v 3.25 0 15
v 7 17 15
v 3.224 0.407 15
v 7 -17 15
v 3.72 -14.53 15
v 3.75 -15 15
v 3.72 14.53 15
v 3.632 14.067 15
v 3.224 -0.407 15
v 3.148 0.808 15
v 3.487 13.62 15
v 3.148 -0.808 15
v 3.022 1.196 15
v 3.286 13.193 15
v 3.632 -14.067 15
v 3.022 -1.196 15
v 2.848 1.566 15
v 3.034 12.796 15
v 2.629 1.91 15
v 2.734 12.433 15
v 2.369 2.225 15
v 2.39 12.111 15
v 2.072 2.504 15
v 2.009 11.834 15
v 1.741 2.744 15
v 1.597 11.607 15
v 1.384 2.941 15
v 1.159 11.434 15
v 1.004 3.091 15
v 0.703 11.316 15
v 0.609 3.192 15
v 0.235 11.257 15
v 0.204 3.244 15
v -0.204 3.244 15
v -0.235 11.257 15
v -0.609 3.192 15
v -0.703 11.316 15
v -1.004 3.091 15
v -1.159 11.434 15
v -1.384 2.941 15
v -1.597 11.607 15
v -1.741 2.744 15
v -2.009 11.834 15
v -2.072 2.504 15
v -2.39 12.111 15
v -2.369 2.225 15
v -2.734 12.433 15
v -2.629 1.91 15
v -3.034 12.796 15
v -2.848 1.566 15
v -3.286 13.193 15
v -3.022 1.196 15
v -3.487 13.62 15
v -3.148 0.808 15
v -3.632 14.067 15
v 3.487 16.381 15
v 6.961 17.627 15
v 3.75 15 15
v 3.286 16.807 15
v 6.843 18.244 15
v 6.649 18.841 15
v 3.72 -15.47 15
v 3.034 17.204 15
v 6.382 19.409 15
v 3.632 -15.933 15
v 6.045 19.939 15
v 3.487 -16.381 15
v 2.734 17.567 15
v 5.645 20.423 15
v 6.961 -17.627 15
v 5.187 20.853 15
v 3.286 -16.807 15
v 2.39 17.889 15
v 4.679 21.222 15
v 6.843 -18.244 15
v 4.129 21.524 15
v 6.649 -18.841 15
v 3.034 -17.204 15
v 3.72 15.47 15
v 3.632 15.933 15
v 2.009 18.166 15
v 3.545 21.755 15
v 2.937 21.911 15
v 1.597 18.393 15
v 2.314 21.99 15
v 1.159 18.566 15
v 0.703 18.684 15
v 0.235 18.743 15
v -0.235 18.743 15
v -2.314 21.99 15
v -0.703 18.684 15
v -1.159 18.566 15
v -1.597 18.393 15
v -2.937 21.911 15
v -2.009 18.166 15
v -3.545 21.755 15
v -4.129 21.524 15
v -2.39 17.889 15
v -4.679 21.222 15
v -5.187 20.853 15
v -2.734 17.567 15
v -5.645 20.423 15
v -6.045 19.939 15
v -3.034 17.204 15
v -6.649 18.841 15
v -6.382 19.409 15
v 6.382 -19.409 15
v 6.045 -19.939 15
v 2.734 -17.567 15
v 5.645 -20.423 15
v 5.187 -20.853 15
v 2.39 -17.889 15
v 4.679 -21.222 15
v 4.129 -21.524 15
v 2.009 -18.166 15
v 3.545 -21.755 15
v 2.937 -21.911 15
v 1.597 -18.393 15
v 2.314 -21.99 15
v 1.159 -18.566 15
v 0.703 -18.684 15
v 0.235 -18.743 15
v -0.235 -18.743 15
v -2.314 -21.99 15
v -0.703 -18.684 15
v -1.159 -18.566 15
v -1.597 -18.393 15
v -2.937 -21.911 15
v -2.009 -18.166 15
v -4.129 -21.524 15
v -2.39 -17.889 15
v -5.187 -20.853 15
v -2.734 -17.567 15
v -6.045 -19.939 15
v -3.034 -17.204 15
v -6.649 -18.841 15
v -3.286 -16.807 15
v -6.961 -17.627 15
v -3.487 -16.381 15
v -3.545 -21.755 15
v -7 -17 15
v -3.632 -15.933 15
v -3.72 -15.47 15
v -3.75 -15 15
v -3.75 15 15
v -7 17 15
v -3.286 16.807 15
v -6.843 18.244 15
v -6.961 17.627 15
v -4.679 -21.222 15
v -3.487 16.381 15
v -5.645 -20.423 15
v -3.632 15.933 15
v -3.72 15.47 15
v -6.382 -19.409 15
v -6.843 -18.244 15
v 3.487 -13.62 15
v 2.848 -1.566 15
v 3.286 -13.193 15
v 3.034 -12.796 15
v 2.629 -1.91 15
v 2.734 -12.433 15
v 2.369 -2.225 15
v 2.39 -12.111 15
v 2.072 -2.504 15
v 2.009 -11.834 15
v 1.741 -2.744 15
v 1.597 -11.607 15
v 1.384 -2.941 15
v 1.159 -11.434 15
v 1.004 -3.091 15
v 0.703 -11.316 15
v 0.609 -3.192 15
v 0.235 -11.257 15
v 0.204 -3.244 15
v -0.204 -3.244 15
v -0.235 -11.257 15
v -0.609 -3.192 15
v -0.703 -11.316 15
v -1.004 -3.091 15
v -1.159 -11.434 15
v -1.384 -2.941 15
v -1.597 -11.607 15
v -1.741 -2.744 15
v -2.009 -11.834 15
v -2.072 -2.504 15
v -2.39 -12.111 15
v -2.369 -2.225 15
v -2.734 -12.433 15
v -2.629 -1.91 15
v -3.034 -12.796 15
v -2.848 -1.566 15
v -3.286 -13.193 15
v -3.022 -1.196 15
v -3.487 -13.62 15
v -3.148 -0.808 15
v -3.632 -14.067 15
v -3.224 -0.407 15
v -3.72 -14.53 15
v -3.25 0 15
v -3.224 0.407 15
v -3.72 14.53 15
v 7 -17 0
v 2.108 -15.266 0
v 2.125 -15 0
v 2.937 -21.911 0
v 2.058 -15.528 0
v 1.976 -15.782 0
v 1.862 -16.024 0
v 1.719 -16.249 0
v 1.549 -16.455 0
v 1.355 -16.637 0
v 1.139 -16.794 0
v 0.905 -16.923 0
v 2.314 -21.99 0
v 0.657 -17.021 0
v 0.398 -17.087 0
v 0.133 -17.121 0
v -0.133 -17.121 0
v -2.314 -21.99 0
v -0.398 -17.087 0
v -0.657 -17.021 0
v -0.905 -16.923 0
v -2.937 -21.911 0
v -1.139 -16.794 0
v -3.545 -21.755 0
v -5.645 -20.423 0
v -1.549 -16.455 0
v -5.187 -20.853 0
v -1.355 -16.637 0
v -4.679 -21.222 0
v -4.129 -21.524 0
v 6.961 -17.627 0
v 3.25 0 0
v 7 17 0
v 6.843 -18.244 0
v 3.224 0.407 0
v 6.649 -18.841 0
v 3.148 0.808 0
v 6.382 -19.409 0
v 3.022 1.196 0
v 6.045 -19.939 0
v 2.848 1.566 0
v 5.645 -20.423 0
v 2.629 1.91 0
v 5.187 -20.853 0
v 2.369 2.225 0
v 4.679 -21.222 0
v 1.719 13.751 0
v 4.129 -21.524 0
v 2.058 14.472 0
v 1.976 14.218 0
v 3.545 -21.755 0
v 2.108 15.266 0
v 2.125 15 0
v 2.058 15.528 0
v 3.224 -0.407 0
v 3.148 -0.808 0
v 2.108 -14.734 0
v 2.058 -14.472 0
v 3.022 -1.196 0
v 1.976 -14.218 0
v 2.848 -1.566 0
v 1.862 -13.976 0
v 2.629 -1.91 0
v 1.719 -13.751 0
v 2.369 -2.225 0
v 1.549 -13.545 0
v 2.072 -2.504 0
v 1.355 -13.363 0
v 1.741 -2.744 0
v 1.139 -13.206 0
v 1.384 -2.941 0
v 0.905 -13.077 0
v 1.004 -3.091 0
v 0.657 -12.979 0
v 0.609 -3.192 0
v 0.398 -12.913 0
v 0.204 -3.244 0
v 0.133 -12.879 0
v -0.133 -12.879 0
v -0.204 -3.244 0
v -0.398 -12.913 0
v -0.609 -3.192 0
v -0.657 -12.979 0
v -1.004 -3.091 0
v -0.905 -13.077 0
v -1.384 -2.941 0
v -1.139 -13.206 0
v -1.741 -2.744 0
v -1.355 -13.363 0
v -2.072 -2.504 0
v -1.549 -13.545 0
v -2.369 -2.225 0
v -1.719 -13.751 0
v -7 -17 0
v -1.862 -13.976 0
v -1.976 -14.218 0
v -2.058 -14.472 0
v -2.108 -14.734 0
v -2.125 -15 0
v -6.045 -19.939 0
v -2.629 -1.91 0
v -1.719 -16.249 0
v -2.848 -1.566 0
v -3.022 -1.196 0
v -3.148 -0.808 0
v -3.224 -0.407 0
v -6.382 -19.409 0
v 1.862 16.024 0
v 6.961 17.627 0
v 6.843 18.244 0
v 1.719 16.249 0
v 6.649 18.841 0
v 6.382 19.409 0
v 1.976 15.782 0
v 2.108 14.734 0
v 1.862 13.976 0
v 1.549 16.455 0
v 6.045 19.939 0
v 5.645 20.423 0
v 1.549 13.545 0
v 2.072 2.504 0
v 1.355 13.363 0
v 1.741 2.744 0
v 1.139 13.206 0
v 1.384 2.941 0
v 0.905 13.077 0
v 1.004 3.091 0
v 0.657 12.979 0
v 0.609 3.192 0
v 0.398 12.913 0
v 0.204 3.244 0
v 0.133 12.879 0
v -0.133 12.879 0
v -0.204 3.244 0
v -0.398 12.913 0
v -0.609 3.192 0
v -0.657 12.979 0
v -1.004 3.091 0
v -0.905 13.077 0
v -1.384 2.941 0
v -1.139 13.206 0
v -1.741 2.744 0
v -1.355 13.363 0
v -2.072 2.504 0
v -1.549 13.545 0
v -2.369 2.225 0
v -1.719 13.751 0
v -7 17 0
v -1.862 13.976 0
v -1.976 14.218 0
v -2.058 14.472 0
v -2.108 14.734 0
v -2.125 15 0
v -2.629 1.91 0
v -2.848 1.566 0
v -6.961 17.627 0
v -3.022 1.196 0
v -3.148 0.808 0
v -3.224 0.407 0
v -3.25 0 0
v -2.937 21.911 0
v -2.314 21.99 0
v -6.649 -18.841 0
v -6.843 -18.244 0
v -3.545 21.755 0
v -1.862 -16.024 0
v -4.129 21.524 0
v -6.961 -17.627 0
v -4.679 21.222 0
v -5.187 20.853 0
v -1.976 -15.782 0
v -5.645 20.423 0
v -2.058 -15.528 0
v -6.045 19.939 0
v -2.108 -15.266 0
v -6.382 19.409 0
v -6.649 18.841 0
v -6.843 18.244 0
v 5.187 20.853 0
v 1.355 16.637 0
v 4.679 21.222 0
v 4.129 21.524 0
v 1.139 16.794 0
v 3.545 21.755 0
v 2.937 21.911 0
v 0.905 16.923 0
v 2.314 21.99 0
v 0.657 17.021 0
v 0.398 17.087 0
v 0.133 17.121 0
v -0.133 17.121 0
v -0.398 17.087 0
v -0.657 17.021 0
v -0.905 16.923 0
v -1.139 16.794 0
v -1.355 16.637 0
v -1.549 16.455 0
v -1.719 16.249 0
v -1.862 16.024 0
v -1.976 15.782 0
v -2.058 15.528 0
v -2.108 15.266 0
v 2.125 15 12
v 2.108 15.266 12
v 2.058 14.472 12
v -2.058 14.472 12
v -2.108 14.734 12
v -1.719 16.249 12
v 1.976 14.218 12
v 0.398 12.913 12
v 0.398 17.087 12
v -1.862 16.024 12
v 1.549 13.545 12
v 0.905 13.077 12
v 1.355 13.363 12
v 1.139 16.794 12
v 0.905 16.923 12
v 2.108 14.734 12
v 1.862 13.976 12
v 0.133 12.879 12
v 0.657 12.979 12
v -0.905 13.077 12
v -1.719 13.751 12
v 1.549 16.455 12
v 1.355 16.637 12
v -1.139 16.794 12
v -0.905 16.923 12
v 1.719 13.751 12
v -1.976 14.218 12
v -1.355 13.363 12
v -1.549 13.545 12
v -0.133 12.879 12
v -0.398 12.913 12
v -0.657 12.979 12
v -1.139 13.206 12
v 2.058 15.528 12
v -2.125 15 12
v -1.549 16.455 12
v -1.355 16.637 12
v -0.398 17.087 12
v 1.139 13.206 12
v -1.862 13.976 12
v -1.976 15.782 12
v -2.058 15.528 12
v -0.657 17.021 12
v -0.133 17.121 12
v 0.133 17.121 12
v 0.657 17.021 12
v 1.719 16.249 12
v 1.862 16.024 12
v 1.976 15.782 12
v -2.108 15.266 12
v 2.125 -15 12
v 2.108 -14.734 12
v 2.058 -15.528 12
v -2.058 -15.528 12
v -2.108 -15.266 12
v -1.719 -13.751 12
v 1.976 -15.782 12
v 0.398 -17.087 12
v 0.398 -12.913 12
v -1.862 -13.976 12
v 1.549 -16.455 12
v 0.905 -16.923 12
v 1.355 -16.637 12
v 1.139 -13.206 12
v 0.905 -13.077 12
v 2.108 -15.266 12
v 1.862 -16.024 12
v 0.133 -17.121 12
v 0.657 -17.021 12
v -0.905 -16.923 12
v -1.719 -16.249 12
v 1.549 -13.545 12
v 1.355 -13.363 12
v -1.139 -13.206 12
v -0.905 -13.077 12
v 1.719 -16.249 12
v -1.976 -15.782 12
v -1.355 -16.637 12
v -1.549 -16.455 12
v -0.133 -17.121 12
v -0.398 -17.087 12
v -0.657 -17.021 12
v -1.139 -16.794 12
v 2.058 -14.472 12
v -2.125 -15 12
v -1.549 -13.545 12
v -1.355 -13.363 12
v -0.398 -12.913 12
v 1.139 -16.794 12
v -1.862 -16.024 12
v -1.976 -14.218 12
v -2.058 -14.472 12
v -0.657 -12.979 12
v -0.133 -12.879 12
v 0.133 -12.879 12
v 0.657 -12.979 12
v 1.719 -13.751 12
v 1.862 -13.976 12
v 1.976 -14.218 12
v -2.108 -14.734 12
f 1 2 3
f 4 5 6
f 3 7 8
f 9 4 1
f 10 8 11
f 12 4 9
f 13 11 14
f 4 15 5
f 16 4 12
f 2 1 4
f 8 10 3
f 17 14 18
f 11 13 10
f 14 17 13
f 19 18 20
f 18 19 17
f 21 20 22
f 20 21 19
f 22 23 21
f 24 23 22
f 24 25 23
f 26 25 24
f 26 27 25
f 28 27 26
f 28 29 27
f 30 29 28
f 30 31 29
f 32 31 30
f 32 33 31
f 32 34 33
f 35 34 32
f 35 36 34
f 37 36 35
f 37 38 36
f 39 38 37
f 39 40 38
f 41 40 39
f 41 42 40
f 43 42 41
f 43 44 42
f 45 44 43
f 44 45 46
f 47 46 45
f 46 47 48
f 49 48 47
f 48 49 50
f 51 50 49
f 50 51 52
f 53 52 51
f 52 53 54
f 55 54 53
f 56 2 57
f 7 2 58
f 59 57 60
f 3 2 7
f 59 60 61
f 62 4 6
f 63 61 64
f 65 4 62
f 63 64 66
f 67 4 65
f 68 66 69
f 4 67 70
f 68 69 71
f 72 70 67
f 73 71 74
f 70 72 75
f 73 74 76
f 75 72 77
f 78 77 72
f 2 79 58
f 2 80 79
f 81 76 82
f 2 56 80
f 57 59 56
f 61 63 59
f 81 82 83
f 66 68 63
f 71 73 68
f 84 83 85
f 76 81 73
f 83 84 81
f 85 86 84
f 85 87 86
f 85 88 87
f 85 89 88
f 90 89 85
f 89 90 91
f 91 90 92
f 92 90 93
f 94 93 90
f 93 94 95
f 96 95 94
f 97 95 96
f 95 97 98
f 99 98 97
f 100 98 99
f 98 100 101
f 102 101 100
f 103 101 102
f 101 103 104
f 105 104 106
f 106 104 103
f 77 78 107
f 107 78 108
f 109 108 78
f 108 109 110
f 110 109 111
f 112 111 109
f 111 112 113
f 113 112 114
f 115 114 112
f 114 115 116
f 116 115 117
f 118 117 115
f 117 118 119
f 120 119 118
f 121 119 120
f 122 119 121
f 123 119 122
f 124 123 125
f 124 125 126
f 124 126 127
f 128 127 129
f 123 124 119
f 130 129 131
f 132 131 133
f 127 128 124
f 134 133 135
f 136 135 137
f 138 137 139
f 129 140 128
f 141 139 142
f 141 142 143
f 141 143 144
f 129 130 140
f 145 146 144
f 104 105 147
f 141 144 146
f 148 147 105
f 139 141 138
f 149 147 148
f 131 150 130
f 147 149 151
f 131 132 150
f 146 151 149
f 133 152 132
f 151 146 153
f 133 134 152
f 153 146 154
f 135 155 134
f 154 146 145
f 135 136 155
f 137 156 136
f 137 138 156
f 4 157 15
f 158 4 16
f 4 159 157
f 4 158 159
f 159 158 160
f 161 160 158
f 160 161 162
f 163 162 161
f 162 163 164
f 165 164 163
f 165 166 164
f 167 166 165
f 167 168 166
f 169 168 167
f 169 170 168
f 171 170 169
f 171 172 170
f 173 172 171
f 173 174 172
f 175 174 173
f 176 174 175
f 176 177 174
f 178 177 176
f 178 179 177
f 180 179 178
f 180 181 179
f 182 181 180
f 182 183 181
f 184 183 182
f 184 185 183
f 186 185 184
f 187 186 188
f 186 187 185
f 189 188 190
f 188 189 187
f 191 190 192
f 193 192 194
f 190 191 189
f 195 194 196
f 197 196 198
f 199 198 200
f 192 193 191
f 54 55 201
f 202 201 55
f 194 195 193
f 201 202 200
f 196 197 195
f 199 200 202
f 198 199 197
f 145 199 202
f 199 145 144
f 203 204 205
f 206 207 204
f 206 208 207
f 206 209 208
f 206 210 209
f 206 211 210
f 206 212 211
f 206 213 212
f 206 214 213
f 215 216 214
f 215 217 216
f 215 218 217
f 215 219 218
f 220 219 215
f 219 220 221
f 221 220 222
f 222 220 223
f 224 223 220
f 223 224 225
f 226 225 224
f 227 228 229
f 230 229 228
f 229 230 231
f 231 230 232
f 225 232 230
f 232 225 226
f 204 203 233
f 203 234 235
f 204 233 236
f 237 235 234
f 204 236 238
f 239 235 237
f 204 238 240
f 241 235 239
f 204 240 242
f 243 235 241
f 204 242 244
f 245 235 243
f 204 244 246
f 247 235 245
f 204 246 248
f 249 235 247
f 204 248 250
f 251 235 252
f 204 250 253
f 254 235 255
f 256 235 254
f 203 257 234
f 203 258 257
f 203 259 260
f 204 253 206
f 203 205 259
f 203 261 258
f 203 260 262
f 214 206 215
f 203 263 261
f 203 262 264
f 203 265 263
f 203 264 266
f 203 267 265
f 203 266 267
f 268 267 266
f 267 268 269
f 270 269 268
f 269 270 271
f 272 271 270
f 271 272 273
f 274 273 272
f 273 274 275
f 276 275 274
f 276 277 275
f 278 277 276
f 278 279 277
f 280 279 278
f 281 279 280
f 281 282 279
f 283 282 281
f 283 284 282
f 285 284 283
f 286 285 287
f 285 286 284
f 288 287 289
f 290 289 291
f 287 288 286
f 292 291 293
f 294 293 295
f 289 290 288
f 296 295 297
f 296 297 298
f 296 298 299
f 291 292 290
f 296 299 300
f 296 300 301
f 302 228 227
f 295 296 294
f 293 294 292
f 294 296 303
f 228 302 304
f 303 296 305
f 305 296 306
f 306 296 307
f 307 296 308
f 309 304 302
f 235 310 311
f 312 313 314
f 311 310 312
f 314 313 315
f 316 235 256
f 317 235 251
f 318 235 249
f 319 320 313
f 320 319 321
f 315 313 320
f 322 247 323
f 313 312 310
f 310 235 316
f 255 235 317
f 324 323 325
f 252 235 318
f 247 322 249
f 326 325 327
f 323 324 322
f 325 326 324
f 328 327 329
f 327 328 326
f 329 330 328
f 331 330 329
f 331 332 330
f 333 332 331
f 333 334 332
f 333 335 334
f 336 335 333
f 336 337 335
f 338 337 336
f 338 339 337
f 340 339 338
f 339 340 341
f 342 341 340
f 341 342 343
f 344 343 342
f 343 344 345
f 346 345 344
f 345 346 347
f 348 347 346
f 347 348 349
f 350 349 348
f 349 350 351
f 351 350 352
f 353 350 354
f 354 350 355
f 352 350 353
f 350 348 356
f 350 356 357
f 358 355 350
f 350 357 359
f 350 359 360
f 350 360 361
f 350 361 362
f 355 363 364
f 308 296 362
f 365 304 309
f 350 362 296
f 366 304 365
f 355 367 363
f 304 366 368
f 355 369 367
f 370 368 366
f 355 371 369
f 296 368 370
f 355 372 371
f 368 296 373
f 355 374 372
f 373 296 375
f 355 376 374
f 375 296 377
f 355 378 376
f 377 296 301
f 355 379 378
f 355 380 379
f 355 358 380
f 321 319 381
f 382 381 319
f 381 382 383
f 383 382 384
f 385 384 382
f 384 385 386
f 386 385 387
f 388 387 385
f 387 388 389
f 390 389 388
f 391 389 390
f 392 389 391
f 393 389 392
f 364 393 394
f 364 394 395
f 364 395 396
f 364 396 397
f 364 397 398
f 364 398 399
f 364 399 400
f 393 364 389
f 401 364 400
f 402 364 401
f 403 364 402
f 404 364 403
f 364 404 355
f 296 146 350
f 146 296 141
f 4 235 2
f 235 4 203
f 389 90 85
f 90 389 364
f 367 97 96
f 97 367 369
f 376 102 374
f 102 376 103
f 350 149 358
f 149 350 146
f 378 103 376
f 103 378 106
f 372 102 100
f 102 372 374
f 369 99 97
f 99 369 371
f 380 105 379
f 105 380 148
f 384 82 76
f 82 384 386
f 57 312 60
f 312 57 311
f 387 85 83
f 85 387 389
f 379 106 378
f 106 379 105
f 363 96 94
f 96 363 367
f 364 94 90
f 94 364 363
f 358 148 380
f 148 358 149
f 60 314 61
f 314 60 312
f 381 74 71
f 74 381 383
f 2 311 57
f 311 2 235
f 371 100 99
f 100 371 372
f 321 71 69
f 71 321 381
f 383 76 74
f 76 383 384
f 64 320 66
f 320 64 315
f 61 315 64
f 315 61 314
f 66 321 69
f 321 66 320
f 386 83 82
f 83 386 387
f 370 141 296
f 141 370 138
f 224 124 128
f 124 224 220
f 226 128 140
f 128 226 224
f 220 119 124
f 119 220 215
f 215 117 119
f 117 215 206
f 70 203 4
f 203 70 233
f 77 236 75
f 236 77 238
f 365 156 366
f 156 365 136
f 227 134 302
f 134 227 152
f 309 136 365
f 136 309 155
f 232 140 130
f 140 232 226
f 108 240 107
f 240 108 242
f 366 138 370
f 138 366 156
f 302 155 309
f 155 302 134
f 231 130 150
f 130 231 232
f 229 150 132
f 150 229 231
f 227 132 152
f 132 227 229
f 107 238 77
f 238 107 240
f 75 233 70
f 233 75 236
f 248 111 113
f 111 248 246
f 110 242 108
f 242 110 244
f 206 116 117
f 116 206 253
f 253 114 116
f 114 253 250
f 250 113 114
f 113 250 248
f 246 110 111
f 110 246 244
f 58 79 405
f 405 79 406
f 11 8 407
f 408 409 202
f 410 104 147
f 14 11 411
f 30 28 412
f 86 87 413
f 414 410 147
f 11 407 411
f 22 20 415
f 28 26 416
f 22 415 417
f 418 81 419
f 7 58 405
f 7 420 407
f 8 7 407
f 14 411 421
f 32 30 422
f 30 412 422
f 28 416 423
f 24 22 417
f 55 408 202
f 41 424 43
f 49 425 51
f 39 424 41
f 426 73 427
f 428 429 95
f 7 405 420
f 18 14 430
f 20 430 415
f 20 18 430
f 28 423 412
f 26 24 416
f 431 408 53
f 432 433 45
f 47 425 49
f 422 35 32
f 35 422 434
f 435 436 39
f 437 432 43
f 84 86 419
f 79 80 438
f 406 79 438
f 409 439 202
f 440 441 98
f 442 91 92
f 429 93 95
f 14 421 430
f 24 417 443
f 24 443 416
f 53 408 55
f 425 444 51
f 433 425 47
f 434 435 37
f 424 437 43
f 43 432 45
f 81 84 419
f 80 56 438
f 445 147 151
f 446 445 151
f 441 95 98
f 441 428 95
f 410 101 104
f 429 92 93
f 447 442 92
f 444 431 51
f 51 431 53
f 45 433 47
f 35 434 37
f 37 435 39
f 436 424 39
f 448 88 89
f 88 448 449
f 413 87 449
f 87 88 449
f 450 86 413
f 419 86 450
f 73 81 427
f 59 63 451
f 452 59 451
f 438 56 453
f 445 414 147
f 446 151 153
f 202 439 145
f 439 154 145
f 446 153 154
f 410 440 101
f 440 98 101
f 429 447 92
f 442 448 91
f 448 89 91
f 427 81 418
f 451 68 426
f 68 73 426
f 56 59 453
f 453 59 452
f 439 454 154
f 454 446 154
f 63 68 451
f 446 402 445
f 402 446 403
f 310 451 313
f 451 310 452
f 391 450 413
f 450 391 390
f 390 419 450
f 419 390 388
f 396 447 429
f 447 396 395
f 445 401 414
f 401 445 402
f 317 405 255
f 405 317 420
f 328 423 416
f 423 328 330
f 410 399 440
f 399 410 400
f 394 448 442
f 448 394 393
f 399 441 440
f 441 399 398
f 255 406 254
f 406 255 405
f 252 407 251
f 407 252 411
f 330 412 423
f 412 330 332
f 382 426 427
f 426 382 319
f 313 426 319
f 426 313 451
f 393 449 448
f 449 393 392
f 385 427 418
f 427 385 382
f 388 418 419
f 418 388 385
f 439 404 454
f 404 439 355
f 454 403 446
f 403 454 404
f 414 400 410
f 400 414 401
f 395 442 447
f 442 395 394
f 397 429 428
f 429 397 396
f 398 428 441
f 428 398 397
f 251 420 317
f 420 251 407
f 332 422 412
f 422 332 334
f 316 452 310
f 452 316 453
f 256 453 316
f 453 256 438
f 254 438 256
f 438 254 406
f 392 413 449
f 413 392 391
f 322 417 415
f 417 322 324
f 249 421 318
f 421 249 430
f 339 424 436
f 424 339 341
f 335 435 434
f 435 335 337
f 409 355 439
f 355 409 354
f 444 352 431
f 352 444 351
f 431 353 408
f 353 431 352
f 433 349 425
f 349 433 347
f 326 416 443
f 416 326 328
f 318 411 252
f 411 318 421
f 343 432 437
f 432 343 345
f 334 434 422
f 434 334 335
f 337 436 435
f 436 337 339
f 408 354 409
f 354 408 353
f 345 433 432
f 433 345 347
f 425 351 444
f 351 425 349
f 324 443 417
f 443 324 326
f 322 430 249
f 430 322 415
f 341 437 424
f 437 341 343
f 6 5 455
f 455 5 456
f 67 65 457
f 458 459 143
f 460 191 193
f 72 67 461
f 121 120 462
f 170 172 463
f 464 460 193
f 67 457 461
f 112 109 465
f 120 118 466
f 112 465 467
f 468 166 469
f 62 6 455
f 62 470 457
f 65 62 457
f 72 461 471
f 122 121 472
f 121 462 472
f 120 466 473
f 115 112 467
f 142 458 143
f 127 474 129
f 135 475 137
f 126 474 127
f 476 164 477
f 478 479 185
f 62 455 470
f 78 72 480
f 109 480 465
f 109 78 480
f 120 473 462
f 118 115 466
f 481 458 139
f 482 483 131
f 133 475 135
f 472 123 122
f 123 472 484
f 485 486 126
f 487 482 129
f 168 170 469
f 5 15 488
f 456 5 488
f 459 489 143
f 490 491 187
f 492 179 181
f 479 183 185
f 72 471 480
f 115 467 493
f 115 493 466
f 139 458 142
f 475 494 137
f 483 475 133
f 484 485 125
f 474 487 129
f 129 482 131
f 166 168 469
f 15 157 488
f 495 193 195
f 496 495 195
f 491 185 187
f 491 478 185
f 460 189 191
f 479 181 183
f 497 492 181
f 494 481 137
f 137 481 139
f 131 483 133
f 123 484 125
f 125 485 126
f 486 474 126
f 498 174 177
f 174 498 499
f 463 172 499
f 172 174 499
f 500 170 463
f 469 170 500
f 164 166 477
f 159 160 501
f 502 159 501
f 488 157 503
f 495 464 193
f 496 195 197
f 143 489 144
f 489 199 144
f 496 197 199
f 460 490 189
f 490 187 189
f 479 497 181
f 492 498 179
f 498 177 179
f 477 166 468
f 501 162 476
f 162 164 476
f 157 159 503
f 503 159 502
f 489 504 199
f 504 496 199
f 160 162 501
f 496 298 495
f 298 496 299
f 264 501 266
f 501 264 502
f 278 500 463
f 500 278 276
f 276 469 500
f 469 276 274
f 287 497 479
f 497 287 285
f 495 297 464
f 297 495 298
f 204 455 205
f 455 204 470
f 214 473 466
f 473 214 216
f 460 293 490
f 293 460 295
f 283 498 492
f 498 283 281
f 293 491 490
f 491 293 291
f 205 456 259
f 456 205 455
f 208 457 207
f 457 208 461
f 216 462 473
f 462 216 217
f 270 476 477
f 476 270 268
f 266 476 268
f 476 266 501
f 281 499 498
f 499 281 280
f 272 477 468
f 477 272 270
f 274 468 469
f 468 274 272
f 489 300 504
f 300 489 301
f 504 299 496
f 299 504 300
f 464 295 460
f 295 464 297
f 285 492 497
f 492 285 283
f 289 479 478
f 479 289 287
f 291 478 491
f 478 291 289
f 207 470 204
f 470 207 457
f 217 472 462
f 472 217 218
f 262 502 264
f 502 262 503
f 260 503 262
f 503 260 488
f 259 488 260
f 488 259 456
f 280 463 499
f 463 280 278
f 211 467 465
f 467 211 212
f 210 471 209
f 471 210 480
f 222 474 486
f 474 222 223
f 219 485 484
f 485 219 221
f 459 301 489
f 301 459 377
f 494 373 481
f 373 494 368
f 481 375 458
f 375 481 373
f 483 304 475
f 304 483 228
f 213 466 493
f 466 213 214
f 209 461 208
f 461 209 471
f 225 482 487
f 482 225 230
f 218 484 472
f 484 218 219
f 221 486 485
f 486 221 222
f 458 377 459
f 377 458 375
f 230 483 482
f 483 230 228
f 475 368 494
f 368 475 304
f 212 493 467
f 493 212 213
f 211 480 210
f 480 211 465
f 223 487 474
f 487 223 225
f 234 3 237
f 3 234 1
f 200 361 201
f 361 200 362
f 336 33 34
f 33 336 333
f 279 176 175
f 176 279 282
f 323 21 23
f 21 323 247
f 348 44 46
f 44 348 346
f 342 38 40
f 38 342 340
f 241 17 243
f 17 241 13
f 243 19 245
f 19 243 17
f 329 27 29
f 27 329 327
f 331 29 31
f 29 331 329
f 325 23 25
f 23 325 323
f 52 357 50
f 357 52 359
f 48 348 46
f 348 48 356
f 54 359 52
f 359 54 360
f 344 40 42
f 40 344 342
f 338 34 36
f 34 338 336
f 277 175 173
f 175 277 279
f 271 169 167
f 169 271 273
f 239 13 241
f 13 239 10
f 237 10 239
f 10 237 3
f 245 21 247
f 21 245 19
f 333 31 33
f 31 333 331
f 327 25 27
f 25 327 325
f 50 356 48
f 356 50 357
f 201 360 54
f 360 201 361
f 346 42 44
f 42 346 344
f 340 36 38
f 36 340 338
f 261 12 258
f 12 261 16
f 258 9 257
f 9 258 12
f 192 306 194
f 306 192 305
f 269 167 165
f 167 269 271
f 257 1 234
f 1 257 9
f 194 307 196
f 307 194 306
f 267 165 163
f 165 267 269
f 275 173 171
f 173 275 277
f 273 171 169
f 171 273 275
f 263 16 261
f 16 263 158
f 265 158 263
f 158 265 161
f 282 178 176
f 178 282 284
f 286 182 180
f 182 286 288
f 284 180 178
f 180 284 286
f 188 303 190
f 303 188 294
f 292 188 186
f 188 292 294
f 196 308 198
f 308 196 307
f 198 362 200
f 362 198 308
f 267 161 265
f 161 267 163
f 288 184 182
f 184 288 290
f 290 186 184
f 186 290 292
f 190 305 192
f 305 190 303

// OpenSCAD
$fn = 50;


difference() {
	union() {
		cylinder(h = 15, r = 7.0000000000);
		translate(v = [0.0000000000, 7.5000000000, 0]) {
			hull() {
				translate(v = [-2.0000000000, 9.5000000000, 0]) {
					cylinder(h = 15, r = 5);
				}
				translate(v = [2.0000000000, 9.5000000000, 0]) {
					cylinder(h = 15, r = 5);
				}
				translate(v = [-2.0000000000, -9.5000000000, 0]) {
					cylinder(h = 15, r = 5);
				}
				translate(v = [2.0000000000, -9.5000000000, 0]) {
					cylinder(h = 15, r = 5);
				}
			}
		}
		translate(v = [0.0000000000, 7.5000000000, 0]) {
			hull() {
				translate(v = [-2.0000000000, 9.5000000000, 0]) {
					cylinder(h = 15, r = 5);
				}
				translate(v = [2.0000000000, 9.5000000000, 0]) {
					cylinder(h = 15, r = 5);
				}
				translate(v = [-2.0000000000, -9.5000000000, 0]) {
					cylinder(h = 15, r = 5);
				}
				translate(v = [2.0000000000, -9.5000000000, 0]) {
					cylinder(h = 15, r = 5);
				}
			}
		}
		translate(v = [0.0000000000, -7.5000000000, 0]) {
			hull() {
				translate(v = [-2.0000000000, 9.5000000000, 0]) {
					cylinder(h = 15, r = 5);
				}
				translate(v = [2.0000000000, 9.5000000000, 0]) {
					cylinder(h = 15, r = 5);
				}
				translate(v = [-2.0000000000, -9.5000000000, 0]) {
					cylinder(h = 15, r = 5);
				}
				translate(v = [2.0000000000, -9.5000000000, 0]) {
					cylinder(h = 15, r = 5);
				}
			}
		}
		translate(v = [0.0000000000, -7.5000000000, 0]) {
			hull() {
				translate(v = [-2.0000000000, 9.5000000000, 0]) {
					cylinder(h = 15, r = 5);
				}
				translate(v = [2.0000000000, 9.5000000000, 0]) {
					cylinder(h = 15, r = 5);
				}
				translate(v = [-2.0000000000, -9.5000000000, 0]) {
					cylinder(h = 15, r = 5);
				}
				translate(v = [2.0000000000, -9.5000000000, 0]) {
					cylinder(h = 15, r = 5);
				}
			}
		}
	}
	union() {
		translate(v = [0.0000000000, 15.0000000000, 15]) {
			rotate(a = [0, 0, 0]) {
				difference() {
					union() {
						#translate(v = [0, 0, -15.0000000000]) {
							cylinder(h = 15, r = 2.0000000000);
						}
						#translate(v = [0, 0, -3]) {
							cylinder(h = 3, r1 = 2.1250000000, r2 = 3.7500000000);
						}
						#translate(v = [0, 0, -15.0000000000]) {
							cylinder(h = 15, r = 2.1250000000);
						}
						#translate(v = [0, 0, -15.0000000000]) {
							cylinder(h = 15, r = 2.0000000000);
						}
					}
					union();
				}
			}
		}
		translate(v = [0.0000000000, 15.0000000000, 15]) {
			rotate(a = [0, 0, 0]) {
				difference() {
					union() {
						#translate(v = [0, 0, -15.0000000000]) {
							cylinder(h = 15, r = 2.0000000000);
						}
						#translate(v = [0, 0, -3]) {
							cylinder(h = 3, r1 = 2.1250000000, r2 = 3.7500000000);
						}
						#translate(v = [0, 0, -15.0000000000]) {
							cylinder(h = 15, r = 2.1250000000);
						}
						#translate(v = [0, 0, -15.0000000000]) {
							cylinder(h = 15, r = 2.0000000000);
						}
					}
					union();
				}
			}
		}
		translate(v = [0.0000000000, -15.0000000000, 15]) {
			rotate(a = [0, 0, 0]) {
				difference() {
					union() {
						#translate(v = [0, 0, -15.0000000000]) {
							cylinder(h = 15, r = 2.0000000000);
						}
						#translate(v = [0, 0, -3]) {
							cylinder(h = 3, r1 = 2.1250000000, r2 = 3.7500000000);
						}
						#translate(v = [0, 0, -15.0000000000]) {
							cylinder(h = 15, r = 2.1250000000);
						}
						#translate(v = [0, 0, -15.0000000000]) {
							cylinder(h = 15, r = 2.0000000000);
						}
					}
					union();
				}
			}
		}
		translate(v = [0.0000000000, -15.0000000000, 15]) {
			rotate(a = [0, 0, 0]) {
				difference() {
					union() {
						#translate(v = [0, 0, -15.0000000000]) {
							cylinder(h = 15, r = 2.0000000000);
						}
						#translate(v = [0, 0, -3]) {
							cylinder(h = 3, r1 = 2.1250000000, r2 = 3.7500000000);
						}
						#translate(v = [0, 0, -15.0000000000]) {
							cylinder(h = 15, r = 2.1250000000);
						}
						#translate(v = [0, 0, -15.0000000000]) {
							cylinder(h = 15, r = 2.0000000000);
						}
					}
					union();
				}
			}
		}
		translate(v = [0, 0, -100]) {
			cylinder(h = 200, r = 3.2500000000);
		}
		translate(v = [0, 0, -100]) {
			cylinder(h = 200, r = 1.8000000000);
		}
	}
}
